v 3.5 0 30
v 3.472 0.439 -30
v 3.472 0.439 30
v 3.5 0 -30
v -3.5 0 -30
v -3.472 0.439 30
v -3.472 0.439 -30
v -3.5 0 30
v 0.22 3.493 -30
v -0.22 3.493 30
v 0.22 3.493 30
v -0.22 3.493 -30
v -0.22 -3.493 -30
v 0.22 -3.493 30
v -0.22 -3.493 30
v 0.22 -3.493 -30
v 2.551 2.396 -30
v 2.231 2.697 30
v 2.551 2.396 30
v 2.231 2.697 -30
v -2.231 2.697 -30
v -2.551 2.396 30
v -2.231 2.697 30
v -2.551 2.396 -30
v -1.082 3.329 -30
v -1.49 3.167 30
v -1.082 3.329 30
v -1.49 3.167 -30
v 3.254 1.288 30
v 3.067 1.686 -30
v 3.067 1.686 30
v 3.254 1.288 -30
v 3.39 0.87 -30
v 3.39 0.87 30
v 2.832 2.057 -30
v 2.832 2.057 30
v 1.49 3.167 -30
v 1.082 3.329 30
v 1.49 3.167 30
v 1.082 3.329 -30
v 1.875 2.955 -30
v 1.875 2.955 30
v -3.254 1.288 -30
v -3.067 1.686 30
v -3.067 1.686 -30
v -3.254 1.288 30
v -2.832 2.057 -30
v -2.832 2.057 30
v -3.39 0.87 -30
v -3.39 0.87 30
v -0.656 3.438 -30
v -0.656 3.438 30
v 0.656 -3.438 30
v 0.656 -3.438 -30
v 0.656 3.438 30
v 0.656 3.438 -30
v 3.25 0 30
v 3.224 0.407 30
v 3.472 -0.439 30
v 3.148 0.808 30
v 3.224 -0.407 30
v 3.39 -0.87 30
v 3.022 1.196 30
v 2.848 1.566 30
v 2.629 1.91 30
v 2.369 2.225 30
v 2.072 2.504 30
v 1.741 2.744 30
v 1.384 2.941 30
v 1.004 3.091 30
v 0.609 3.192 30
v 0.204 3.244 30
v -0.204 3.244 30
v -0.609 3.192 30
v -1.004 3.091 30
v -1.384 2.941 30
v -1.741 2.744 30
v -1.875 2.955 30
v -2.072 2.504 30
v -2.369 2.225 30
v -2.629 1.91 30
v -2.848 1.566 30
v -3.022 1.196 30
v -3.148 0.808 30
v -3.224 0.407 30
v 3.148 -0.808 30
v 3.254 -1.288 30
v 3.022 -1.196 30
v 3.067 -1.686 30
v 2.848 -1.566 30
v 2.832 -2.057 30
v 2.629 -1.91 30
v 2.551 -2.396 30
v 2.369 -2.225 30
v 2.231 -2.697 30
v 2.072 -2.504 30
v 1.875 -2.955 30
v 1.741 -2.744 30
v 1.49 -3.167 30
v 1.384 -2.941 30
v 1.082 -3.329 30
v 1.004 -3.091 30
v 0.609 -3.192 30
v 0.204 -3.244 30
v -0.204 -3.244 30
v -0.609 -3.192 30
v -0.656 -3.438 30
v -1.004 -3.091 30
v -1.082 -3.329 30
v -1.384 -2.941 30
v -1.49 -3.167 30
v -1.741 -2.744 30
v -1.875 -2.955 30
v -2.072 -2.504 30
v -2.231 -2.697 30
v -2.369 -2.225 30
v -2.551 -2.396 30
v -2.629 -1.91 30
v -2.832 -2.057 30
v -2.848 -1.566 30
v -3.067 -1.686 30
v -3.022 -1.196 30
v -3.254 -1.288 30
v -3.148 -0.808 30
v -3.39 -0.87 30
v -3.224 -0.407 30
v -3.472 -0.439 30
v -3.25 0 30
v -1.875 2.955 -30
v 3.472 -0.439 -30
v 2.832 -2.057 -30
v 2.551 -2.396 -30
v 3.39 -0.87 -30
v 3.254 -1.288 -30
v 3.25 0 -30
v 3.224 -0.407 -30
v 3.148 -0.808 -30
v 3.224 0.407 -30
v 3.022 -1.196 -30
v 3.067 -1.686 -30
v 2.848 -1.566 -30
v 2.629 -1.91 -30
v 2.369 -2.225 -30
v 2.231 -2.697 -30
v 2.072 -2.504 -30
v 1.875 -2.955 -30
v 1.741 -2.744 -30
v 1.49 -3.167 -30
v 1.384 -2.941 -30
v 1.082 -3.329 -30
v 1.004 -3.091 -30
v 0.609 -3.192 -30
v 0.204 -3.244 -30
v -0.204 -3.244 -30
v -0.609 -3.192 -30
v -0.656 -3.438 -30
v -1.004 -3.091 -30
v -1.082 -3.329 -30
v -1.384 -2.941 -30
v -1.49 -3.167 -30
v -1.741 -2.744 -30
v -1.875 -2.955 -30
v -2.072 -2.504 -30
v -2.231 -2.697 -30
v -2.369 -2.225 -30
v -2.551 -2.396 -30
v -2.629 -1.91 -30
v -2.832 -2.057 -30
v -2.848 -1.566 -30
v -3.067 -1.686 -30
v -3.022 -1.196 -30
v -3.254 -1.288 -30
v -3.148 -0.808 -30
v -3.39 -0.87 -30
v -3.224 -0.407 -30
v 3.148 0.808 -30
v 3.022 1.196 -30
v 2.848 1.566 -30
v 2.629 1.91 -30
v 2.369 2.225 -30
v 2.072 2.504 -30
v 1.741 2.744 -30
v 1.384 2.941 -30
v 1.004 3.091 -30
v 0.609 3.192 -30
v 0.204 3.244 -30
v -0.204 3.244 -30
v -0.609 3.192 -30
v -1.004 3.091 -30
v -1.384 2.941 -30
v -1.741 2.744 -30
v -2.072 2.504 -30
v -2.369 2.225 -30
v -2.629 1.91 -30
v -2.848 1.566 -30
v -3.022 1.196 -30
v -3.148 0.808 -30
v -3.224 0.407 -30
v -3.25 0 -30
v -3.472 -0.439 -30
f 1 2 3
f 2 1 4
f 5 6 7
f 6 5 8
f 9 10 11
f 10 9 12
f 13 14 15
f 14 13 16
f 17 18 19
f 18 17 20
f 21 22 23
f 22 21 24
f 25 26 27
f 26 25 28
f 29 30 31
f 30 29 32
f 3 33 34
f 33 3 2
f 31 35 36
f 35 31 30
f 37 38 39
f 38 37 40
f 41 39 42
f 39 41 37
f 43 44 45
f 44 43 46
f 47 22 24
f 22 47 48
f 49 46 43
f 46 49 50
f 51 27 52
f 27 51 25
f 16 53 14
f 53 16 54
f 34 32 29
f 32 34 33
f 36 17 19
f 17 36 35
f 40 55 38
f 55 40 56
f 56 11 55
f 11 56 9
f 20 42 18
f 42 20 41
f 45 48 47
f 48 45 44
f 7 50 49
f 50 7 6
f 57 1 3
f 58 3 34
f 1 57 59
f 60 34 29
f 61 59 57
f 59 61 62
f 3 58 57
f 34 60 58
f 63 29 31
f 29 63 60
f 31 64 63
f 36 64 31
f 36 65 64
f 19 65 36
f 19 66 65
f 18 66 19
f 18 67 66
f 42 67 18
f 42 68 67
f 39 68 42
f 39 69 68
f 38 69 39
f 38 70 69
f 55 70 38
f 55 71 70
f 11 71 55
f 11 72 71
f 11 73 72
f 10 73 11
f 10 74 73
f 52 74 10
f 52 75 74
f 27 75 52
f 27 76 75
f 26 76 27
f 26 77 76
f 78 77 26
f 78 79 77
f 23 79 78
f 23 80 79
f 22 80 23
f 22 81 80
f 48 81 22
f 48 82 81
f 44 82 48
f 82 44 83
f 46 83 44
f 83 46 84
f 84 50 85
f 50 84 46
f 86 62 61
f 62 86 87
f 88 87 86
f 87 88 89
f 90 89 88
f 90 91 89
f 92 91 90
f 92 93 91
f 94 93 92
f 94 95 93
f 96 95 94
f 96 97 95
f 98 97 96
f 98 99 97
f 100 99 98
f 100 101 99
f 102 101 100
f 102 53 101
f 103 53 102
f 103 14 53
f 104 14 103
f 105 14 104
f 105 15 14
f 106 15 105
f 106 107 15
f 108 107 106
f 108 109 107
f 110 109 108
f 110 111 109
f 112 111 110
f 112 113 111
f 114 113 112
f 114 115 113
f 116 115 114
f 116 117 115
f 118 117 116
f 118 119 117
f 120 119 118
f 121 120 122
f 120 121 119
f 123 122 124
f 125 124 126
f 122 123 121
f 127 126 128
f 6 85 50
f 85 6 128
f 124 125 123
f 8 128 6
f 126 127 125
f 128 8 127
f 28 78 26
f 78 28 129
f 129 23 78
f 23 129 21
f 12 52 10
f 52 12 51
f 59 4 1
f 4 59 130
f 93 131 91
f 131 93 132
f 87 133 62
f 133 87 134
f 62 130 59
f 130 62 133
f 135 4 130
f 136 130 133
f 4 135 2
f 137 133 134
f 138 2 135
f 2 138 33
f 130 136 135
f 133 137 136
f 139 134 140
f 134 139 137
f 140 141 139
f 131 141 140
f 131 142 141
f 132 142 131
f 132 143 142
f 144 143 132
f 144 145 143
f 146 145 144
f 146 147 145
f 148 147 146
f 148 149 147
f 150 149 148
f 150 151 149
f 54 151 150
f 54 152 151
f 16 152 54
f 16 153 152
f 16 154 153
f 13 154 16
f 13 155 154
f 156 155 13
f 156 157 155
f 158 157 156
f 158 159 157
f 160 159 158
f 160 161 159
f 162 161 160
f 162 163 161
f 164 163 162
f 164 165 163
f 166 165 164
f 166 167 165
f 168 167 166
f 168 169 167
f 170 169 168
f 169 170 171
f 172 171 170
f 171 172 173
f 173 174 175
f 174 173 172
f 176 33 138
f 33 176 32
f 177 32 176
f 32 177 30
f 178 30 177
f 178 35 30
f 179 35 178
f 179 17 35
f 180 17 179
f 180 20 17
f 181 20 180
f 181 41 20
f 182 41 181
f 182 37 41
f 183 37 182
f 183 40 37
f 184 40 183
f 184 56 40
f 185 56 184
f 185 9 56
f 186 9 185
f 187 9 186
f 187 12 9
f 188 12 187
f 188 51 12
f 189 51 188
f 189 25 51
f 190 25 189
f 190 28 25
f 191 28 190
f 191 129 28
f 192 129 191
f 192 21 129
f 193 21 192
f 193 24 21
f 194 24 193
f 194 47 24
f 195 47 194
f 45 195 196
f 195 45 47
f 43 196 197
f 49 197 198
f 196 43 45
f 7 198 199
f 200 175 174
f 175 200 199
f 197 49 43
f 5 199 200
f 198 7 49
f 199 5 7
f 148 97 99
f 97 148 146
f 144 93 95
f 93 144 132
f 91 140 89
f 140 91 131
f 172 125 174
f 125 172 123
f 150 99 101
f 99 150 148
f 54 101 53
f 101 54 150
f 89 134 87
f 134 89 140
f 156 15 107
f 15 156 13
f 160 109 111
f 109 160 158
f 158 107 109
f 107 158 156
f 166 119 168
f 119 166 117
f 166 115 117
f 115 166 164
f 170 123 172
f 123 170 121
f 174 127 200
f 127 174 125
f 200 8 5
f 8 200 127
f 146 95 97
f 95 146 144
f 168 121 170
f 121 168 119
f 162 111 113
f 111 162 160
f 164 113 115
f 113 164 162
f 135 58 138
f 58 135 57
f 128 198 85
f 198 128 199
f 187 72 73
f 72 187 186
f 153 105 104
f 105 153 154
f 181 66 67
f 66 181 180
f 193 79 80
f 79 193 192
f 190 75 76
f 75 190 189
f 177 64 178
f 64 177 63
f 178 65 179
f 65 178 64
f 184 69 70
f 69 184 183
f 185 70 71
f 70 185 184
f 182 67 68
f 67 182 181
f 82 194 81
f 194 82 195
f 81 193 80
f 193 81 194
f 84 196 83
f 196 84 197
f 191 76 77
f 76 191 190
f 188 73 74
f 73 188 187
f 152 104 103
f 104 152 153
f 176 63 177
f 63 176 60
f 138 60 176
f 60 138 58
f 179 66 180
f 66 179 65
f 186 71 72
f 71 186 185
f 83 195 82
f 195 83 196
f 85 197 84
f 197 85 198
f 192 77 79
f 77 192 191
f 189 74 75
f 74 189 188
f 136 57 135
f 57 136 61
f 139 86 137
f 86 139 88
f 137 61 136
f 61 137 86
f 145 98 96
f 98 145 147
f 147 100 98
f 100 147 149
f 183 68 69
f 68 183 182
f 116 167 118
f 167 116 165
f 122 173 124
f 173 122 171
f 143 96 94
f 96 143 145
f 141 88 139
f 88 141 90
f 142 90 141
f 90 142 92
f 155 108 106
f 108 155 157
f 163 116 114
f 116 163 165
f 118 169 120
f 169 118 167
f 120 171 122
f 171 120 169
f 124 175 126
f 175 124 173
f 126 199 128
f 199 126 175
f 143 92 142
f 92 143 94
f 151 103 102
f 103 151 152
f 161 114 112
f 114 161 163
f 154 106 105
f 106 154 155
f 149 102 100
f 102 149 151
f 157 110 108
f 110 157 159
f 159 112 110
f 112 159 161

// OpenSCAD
$fn = 50;


difference() {
	union() {
		translate(v = [0, 0, -30.0000000000]) {
			cylinder(h = 60, r = 3.5000000000);
		}
	}
	union() {
		translate(v = [0, 0, -100.0000000000]) {
			cylinder(h = 200, r = 3.2500000000);
		}
	}
}
